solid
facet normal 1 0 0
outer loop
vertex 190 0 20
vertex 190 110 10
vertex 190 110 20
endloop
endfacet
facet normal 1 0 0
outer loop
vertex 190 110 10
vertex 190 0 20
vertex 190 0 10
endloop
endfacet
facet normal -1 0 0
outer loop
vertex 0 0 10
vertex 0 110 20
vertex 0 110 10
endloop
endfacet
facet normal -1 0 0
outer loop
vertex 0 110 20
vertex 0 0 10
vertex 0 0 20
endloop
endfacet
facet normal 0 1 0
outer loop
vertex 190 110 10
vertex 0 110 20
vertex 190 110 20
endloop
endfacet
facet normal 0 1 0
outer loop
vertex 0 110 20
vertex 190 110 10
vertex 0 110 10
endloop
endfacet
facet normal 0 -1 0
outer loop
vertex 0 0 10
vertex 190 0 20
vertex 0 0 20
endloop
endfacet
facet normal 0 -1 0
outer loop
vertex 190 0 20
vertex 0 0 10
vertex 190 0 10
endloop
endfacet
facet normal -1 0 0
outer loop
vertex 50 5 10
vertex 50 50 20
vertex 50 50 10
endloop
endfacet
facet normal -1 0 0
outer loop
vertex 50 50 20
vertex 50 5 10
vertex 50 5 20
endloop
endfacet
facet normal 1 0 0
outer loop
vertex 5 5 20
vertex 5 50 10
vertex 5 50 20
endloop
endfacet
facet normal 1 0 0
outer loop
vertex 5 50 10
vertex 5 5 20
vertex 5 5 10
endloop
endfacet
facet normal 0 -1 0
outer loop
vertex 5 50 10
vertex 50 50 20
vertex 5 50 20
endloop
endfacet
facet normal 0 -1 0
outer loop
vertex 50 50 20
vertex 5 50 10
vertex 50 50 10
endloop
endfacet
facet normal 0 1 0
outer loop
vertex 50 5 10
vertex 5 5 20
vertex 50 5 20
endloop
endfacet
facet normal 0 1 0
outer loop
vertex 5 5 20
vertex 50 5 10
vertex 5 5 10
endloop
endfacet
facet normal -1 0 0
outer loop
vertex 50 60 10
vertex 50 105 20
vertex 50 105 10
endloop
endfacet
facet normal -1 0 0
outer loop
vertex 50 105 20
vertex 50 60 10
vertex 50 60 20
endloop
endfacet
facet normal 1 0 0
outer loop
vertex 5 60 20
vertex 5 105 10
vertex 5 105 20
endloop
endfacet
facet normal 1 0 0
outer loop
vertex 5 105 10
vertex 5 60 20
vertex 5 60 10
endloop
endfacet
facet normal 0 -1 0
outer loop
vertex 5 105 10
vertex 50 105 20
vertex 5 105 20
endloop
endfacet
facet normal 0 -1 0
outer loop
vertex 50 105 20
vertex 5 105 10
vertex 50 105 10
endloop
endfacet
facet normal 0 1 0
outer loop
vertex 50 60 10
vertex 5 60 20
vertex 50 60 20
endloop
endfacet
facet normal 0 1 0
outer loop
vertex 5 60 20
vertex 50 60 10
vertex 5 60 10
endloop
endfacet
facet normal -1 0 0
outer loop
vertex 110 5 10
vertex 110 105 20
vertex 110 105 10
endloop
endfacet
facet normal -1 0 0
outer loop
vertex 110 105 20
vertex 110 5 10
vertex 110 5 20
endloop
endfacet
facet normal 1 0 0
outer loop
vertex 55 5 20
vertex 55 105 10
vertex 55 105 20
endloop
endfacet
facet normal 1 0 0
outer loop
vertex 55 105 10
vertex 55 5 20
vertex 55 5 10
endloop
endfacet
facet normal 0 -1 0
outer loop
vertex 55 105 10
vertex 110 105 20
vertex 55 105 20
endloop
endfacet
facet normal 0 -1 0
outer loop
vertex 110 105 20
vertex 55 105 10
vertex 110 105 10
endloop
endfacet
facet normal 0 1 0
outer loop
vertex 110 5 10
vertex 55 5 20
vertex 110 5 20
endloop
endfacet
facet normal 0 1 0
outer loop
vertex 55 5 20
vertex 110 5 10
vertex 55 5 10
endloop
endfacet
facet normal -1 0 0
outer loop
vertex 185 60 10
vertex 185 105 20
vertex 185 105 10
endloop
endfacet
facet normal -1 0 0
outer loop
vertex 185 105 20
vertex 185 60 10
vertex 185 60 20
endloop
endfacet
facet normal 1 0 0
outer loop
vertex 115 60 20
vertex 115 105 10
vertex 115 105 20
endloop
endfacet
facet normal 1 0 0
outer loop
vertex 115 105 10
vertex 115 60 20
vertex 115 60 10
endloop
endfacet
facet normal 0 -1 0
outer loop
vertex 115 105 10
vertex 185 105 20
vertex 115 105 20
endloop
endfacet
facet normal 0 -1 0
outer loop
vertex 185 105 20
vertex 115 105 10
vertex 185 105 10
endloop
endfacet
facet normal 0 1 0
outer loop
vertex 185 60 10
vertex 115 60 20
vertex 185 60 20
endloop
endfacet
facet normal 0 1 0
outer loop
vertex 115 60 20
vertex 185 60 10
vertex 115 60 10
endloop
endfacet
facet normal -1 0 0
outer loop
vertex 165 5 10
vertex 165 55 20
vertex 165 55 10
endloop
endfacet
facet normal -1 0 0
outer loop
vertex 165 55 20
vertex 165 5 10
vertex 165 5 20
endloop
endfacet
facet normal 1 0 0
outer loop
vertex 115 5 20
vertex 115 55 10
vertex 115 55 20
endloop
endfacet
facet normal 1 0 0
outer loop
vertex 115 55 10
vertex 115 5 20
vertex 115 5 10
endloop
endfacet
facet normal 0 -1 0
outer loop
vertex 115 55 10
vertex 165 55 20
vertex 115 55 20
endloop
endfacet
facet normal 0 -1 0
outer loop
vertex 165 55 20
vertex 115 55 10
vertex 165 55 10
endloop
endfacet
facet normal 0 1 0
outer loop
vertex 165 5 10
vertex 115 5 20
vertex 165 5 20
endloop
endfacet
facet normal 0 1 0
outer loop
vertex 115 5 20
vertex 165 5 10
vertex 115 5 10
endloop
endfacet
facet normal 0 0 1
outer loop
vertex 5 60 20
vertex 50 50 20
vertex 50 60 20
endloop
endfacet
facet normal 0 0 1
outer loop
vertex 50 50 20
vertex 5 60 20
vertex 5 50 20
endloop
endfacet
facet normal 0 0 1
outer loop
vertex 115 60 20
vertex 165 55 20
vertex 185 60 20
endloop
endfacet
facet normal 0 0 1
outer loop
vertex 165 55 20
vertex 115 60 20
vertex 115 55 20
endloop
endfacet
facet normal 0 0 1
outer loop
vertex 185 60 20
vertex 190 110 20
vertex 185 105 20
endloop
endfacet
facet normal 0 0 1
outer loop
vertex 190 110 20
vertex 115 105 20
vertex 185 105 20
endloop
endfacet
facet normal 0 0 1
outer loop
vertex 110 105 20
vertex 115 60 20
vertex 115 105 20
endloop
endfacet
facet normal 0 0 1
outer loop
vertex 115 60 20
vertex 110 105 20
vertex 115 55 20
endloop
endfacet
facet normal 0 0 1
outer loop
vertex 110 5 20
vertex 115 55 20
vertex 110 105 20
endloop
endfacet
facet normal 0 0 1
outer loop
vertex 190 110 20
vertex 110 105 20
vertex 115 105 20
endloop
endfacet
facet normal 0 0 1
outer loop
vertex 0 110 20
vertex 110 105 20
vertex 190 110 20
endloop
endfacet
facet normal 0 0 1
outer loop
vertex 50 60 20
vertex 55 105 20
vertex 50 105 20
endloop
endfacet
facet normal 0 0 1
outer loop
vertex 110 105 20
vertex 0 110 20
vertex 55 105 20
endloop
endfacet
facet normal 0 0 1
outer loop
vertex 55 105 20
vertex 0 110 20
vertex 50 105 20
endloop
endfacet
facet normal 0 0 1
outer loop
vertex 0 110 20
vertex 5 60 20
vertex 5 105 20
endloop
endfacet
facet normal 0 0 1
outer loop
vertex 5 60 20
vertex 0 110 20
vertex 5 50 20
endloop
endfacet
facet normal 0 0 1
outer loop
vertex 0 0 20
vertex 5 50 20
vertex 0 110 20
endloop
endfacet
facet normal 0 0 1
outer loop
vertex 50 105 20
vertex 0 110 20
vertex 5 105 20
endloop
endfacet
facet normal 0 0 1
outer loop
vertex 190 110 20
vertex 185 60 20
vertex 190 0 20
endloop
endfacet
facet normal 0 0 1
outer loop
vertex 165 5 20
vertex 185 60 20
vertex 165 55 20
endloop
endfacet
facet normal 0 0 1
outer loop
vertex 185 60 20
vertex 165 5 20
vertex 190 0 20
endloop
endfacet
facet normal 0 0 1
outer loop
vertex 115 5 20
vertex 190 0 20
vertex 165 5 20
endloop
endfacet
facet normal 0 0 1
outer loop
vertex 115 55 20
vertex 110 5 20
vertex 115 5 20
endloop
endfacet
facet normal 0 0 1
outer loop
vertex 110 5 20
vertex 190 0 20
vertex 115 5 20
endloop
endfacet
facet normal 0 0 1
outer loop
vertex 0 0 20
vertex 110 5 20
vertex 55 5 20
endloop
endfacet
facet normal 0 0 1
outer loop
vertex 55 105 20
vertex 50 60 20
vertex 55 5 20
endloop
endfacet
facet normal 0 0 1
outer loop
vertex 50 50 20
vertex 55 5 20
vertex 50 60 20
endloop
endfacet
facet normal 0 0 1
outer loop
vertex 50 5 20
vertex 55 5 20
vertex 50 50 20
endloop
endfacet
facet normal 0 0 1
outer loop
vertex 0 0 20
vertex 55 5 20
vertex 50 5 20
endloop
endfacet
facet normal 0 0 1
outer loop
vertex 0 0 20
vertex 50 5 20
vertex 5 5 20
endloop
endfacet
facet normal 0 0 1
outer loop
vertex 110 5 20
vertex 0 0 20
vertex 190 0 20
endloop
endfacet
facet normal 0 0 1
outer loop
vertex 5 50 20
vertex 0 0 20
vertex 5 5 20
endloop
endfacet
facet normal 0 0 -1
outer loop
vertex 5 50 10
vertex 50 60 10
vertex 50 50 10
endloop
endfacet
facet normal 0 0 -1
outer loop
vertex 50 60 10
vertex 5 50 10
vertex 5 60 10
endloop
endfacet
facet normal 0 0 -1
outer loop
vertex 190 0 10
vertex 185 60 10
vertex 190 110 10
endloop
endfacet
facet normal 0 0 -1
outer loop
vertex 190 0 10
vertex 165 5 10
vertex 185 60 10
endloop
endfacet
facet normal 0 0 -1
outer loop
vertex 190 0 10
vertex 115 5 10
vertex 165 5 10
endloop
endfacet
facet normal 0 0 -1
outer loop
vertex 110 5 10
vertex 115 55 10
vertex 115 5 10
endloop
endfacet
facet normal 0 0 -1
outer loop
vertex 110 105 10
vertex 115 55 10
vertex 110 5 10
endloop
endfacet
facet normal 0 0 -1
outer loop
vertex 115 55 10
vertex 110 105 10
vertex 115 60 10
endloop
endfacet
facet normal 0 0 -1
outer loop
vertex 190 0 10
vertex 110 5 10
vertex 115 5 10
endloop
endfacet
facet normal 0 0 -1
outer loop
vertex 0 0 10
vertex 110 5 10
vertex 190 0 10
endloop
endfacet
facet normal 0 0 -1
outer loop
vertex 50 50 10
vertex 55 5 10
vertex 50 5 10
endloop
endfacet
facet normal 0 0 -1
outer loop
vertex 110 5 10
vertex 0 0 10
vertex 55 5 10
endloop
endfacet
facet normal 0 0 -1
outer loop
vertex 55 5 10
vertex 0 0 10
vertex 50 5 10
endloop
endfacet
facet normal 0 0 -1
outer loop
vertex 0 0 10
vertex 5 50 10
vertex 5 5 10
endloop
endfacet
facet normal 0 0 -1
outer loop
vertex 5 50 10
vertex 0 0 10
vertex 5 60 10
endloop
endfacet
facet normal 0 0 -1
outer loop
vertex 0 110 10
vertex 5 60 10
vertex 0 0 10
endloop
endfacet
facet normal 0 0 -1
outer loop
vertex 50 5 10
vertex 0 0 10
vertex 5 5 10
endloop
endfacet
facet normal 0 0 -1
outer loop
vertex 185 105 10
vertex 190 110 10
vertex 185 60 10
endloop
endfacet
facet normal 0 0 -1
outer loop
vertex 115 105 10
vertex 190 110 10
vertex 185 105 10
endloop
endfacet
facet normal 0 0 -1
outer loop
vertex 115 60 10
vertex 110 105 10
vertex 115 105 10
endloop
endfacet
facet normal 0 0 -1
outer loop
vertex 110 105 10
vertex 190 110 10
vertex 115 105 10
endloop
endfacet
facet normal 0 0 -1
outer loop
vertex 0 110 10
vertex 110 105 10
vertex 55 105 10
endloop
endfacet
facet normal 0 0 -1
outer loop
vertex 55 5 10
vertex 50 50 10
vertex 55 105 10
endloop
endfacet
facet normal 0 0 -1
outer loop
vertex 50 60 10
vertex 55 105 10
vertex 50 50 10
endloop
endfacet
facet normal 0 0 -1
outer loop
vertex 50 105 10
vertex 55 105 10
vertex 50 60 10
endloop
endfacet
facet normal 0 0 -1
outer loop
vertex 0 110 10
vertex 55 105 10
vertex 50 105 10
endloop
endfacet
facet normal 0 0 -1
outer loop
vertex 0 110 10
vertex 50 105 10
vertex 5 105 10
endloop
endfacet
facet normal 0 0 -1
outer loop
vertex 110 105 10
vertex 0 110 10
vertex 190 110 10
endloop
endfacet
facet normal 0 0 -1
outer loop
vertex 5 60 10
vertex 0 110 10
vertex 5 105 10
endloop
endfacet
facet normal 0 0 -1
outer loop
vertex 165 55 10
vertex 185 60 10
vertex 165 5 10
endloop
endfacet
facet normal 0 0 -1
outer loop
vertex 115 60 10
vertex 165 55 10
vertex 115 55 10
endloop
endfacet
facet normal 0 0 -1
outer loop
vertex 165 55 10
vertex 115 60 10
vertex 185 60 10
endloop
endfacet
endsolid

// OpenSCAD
// file: ../settings.scad
//// Parametrics settings

RingNumberOfTeeth=100;
DriverNumberOfTeeth=6;

ClampThickness=20;


// this is the diameter of the hole inside the clamp
ClampDiameter=55; 


ClampLength=30;
ClampZone=20;

GrooveWidth=5;

fn=100;


RingThickness = 20; 
RingDiameter=140;

Tolerance=0.1;
// main file
include <../settings.scad>

max=1000;

// overall box dimentions
w_box=190;
d_box=110;
h_box=100;

// wall thickness
wall=5;

d_salt_pepper=45;

w_lotion=55;
h_lotion=100;

w_brush=70;
d_brush=45;

d_sunscreen=50;

module organizer(){
    difference() {
        
        cube([w_box,d_box,h_box]);
        
        
        // Salt and Pepper cutouts
        translate([wall,wall,wall])cube([d_salt_pepper,d_salt_pepper,max]);
        translate([wall,d_box-wall-d_salt_pepper,wall])cube([d_salt_pepper,d_salt_pepper,max]);
        
        // Lotion Cutout
        translate([2*wall+d_salt_pepper,wall,wall])cube([w_lotion, h_lotion,max]);
        
        // HairBrush
        translate([3*wall+d_salt_pepper+w_lotion,d_box-d_brush-wall,wall])cube([w_brush,d_brush,max]);
        
        // sunscreen
        translate([3*wall+d_salt_pepper+w_lotion,wall])cube([d_sunscreen,d_sunscreen,max]);   
    }
}

// horizontal slice for testing
intersection(){
    organizer();
    translate([0,0,10])cube([max,max,10]);
}
